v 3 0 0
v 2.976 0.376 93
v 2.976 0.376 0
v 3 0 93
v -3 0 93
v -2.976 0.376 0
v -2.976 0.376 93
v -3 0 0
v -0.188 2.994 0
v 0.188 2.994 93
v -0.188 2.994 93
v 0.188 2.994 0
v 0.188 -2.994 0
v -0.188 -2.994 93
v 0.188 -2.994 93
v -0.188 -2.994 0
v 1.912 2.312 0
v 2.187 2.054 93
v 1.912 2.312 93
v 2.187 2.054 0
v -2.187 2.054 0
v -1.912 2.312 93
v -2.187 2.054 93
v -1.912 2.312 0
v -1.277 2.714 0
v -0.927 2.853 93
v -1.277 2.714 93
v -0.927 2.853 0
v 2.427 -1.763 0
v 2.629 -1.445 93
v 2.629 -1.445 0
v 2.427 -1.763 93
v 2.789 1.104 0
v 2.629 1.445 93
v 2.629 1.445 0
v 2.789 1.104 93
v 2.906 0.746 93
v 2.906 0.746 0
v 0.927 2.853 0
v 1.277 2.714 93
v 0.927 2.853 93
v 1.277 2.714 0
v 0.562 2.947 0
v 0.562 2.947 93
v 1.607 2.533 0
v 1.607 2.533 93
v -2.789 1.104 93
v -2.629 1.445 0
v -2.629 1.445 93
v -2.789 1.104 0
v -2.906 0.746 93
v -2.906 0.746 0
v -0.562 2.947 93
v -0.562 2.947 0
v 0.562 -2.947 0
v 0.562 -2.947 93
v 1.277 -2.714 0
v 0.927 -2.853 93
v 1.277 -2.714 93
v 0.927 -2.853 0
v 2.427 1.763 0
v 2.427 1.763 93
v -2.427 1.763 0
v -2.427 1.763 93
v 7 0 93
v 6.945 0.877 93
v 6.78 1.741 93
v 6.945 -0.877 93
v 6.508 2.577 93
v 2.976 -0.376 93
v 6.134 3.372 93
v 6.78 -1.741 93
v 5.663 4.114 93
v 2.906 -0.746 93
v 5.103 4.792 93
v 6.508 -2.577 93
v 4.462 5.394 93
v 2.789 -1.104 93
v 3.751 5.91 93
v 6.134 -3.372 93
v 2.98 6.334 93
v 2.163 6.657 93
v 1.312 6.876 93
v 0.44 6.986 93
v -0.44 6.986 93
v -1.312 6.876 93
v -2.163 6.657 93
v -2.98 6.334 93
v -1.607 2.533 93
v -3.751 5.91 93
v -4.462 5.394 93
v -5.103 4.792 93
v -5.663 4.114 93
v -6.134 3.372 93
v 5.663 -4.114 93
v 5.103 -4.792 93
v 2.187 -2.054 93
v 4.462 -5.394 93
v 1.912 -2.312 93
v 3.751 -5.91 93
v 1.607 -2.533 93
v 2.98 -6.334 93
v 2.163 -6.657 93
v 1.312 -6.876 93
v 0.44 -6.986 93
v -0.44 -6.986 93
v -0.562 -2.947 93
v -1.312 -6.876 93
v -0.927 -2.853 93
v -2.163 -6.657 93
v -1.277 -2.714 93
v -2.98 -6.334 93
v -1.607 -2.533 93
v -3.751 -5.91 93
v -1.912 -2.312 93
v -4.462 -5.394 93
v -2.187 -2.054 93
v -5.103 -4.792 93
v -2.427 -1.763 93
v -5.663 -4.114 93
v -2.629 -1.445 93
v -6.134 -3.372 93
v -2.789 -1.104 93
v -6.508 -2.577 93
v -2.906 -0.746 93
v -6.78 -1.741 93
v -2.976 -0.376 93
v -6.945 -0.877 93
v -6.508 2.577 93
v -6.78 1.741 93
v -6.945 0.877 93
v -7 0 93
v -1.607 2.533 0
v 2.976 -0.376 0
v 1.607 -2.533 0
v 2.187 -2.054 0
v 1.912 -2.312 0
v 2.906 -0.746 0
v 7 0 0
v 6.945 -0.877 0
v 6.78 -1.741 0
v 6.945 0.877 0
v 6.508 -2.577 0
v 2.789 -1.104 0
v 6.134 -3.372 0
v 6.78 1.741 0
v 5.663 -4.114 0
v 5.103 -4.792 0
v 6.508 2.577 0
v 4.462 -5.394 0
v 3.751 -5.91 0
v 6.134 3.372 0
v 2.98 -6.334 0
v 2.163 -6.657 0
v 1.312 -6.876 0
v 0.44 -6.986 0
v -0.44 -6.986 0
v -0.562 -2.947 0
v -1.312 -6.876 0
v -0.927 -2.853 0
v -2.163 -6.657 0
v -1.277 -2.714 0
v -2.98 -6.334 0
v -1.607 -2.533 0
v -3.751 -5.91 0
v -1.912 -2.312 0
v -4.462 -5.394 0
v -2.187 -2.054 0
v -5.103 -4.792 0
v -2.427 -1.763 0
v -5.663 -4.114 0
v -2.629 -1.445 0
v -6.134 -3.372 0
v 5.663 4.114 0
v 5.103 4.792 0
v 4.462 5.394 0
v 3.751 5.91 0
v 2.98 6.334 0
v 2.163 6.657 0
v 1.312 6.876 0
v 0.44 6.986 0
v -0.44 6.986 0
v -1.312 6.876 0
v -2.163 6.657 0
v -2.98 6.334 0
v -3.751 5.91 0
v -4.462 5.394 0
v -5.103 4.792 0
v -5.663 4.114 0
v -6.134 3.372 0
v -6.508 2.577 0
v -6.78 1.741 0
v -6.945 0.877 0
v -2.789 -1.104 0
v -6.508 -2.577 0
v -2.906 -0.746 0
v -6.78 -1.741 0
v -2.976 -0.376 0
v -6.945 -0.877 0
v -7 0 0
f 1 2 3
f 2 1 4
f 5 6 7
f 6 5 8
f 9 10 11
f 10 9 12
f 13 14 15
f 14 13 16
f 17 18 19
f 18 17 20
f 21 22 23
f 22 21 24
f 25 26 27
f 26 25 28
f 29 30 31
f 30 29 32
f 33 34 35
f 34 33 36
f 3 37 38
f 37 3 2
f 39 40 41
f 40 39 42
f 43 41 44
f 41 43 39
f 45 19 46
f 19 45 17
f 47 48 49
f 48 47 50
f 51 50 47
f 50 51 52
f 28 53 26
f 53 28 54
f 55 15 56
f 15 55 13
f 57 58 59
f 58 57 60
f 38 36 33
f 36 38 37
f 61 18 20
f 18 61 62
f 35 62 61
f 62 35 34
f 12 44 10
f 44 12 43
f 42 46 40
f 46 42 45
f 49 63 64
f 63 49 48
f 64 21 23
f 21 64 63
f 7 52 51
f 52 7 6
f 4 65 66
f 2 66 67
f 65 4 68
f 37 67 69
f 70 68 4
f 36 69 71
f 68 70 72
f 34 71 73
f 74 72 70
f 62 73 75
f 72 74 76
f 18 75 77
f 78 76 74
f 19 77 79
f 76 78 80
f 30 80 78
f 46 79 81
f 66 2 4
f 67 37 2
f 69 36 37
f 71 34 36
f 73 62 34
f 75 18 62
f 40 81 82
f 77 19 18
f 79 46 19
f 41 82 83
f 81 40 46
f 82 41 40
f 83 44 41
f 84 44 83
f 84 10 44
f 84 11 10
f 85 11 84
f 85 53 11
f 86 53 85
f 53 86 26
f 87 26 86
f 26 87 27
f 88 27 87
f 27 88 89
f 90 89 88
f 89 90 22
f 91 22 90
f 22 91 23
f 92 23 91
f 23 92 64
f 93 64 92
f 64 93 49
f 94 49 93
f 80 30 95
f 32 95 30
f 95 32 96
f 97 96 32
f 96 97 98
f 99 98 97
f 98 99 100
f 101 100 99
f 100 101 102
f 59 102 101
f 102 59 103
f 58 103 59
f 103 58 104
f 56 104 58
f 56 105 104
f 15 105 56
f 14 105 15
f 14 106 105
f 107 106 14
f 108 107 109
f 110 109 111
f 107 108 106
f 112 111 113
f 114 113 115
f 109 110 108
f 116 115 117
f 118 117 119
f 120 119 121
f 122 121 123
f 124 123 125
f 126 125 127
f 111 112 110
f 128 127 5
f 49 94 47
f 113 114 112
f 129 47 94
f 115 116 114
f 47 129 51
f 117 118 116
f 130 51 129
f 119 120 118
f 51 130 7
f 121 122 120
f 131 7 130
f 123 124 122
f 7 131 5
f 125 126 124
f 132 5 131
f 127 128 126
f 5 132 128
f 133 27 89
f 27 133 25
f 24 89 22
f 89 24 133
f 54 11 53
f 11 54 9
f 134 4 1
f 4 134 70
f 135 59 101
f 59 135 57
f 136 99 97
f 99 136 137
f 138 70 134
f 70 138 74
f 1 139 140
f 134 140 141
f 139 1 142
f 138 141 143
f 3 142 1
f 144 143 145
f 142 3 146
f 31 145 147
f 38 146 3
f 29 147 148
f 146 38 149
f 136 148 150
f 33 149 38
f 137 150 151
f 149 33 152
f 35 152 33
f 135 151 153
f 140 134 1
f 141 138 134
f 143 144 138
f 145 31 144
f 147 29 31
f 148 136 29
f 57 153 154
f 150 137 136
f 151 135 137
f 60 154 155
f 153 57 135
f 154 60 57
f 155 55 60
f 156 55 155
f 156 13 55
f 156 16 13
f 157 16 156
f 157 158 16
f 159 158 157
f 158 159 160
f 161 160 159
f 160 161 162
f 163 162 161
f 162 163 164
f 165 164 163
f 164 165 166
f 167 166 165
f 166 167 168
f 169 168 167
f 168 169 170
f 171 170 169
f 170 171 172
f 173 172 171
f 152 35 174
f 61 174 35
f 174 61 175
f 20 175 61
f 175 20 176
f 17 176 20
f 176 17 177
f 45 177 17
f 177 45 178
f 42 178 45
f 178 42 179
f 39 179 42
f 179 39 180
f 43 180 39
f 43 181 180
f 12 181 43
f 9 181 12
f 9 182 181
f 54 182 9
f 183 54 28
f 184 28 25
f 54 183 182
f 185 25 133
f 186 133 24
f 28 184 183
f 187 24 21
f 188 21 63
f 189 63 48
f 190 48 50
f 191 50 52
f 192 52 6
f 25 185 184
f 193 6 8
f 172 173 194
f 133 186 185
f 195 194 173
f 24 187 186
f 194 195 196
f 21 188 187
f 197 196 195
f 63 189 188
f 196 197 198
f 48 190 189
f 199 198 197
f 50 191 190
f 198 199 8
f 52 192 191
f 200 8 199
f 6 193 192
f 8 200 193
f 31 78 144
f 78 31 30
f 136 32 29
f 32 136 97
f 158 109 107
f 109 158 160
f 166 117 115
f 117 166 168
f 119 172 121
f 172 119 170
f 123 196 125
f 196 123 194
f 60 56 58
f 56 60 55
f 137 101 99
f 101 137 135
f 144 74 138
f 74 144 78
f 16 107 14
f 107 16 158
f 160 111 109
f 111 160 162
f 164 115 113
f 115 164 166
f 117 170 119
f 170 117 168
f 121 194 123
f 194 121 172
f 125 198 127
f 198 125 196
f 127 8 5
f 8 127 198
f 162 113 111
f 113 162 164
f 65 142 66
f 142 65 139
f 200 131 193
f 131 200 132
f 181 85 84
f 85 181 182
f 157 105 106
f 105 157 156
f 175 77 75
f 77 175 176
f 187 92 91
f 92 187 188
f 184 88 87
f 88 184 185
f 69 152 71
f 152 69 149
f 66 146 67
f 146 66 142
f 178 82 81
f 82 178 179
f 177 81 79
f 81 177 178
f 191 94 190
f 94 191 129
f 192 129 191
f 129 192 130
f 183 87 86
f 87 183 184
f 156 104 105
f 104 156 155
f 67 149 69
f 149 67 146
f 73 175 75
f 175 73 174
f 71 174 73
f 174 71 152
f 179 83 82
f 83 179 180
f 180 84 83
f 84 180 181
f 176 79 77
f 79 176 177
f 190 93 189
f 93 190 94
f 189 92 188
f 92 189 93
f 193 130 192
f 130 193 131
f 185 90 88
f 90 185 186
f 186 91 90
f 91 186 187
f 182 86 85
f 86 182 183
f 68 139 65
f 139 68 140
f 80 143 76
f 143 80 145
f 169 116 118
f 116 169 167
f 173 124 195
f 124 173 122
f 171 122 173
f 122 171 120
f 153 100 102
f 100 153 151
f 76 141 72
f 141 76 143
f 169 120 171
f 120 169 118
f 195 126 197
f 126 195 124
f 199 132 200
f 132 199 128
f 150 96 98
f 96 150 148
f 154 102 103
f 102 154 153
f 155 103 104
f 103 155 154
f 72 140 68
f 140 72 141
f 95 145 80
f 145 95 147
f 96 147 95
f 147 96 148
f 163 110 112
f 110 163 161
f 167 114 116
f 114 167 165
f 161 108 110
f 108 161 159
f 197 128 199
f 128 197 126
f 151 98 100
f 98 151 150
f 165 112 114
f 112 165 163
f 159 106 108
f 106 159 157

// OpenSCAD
$fn = 50;


difference() {
	union() {
		cylinder(h = 93, r = 7.0000000000);
	}
	union() {
		cylinder(h = 93, r = 3.0000000000);
		cylinder(h = 93, r = 3.0000000000);
		cylinder(h = 93, r = 1.5000000000);
		cylinder(h = 93, r = 1.5000000000);
		cylinder(h = 93, r = 1.5000000000);
		cylinder(h = 93, r = 1.5000000000);
		cylinder(h = 93, r = 1.5000000000);
		cylinder(h = 93, r = 1.5000000000);
	}
}
